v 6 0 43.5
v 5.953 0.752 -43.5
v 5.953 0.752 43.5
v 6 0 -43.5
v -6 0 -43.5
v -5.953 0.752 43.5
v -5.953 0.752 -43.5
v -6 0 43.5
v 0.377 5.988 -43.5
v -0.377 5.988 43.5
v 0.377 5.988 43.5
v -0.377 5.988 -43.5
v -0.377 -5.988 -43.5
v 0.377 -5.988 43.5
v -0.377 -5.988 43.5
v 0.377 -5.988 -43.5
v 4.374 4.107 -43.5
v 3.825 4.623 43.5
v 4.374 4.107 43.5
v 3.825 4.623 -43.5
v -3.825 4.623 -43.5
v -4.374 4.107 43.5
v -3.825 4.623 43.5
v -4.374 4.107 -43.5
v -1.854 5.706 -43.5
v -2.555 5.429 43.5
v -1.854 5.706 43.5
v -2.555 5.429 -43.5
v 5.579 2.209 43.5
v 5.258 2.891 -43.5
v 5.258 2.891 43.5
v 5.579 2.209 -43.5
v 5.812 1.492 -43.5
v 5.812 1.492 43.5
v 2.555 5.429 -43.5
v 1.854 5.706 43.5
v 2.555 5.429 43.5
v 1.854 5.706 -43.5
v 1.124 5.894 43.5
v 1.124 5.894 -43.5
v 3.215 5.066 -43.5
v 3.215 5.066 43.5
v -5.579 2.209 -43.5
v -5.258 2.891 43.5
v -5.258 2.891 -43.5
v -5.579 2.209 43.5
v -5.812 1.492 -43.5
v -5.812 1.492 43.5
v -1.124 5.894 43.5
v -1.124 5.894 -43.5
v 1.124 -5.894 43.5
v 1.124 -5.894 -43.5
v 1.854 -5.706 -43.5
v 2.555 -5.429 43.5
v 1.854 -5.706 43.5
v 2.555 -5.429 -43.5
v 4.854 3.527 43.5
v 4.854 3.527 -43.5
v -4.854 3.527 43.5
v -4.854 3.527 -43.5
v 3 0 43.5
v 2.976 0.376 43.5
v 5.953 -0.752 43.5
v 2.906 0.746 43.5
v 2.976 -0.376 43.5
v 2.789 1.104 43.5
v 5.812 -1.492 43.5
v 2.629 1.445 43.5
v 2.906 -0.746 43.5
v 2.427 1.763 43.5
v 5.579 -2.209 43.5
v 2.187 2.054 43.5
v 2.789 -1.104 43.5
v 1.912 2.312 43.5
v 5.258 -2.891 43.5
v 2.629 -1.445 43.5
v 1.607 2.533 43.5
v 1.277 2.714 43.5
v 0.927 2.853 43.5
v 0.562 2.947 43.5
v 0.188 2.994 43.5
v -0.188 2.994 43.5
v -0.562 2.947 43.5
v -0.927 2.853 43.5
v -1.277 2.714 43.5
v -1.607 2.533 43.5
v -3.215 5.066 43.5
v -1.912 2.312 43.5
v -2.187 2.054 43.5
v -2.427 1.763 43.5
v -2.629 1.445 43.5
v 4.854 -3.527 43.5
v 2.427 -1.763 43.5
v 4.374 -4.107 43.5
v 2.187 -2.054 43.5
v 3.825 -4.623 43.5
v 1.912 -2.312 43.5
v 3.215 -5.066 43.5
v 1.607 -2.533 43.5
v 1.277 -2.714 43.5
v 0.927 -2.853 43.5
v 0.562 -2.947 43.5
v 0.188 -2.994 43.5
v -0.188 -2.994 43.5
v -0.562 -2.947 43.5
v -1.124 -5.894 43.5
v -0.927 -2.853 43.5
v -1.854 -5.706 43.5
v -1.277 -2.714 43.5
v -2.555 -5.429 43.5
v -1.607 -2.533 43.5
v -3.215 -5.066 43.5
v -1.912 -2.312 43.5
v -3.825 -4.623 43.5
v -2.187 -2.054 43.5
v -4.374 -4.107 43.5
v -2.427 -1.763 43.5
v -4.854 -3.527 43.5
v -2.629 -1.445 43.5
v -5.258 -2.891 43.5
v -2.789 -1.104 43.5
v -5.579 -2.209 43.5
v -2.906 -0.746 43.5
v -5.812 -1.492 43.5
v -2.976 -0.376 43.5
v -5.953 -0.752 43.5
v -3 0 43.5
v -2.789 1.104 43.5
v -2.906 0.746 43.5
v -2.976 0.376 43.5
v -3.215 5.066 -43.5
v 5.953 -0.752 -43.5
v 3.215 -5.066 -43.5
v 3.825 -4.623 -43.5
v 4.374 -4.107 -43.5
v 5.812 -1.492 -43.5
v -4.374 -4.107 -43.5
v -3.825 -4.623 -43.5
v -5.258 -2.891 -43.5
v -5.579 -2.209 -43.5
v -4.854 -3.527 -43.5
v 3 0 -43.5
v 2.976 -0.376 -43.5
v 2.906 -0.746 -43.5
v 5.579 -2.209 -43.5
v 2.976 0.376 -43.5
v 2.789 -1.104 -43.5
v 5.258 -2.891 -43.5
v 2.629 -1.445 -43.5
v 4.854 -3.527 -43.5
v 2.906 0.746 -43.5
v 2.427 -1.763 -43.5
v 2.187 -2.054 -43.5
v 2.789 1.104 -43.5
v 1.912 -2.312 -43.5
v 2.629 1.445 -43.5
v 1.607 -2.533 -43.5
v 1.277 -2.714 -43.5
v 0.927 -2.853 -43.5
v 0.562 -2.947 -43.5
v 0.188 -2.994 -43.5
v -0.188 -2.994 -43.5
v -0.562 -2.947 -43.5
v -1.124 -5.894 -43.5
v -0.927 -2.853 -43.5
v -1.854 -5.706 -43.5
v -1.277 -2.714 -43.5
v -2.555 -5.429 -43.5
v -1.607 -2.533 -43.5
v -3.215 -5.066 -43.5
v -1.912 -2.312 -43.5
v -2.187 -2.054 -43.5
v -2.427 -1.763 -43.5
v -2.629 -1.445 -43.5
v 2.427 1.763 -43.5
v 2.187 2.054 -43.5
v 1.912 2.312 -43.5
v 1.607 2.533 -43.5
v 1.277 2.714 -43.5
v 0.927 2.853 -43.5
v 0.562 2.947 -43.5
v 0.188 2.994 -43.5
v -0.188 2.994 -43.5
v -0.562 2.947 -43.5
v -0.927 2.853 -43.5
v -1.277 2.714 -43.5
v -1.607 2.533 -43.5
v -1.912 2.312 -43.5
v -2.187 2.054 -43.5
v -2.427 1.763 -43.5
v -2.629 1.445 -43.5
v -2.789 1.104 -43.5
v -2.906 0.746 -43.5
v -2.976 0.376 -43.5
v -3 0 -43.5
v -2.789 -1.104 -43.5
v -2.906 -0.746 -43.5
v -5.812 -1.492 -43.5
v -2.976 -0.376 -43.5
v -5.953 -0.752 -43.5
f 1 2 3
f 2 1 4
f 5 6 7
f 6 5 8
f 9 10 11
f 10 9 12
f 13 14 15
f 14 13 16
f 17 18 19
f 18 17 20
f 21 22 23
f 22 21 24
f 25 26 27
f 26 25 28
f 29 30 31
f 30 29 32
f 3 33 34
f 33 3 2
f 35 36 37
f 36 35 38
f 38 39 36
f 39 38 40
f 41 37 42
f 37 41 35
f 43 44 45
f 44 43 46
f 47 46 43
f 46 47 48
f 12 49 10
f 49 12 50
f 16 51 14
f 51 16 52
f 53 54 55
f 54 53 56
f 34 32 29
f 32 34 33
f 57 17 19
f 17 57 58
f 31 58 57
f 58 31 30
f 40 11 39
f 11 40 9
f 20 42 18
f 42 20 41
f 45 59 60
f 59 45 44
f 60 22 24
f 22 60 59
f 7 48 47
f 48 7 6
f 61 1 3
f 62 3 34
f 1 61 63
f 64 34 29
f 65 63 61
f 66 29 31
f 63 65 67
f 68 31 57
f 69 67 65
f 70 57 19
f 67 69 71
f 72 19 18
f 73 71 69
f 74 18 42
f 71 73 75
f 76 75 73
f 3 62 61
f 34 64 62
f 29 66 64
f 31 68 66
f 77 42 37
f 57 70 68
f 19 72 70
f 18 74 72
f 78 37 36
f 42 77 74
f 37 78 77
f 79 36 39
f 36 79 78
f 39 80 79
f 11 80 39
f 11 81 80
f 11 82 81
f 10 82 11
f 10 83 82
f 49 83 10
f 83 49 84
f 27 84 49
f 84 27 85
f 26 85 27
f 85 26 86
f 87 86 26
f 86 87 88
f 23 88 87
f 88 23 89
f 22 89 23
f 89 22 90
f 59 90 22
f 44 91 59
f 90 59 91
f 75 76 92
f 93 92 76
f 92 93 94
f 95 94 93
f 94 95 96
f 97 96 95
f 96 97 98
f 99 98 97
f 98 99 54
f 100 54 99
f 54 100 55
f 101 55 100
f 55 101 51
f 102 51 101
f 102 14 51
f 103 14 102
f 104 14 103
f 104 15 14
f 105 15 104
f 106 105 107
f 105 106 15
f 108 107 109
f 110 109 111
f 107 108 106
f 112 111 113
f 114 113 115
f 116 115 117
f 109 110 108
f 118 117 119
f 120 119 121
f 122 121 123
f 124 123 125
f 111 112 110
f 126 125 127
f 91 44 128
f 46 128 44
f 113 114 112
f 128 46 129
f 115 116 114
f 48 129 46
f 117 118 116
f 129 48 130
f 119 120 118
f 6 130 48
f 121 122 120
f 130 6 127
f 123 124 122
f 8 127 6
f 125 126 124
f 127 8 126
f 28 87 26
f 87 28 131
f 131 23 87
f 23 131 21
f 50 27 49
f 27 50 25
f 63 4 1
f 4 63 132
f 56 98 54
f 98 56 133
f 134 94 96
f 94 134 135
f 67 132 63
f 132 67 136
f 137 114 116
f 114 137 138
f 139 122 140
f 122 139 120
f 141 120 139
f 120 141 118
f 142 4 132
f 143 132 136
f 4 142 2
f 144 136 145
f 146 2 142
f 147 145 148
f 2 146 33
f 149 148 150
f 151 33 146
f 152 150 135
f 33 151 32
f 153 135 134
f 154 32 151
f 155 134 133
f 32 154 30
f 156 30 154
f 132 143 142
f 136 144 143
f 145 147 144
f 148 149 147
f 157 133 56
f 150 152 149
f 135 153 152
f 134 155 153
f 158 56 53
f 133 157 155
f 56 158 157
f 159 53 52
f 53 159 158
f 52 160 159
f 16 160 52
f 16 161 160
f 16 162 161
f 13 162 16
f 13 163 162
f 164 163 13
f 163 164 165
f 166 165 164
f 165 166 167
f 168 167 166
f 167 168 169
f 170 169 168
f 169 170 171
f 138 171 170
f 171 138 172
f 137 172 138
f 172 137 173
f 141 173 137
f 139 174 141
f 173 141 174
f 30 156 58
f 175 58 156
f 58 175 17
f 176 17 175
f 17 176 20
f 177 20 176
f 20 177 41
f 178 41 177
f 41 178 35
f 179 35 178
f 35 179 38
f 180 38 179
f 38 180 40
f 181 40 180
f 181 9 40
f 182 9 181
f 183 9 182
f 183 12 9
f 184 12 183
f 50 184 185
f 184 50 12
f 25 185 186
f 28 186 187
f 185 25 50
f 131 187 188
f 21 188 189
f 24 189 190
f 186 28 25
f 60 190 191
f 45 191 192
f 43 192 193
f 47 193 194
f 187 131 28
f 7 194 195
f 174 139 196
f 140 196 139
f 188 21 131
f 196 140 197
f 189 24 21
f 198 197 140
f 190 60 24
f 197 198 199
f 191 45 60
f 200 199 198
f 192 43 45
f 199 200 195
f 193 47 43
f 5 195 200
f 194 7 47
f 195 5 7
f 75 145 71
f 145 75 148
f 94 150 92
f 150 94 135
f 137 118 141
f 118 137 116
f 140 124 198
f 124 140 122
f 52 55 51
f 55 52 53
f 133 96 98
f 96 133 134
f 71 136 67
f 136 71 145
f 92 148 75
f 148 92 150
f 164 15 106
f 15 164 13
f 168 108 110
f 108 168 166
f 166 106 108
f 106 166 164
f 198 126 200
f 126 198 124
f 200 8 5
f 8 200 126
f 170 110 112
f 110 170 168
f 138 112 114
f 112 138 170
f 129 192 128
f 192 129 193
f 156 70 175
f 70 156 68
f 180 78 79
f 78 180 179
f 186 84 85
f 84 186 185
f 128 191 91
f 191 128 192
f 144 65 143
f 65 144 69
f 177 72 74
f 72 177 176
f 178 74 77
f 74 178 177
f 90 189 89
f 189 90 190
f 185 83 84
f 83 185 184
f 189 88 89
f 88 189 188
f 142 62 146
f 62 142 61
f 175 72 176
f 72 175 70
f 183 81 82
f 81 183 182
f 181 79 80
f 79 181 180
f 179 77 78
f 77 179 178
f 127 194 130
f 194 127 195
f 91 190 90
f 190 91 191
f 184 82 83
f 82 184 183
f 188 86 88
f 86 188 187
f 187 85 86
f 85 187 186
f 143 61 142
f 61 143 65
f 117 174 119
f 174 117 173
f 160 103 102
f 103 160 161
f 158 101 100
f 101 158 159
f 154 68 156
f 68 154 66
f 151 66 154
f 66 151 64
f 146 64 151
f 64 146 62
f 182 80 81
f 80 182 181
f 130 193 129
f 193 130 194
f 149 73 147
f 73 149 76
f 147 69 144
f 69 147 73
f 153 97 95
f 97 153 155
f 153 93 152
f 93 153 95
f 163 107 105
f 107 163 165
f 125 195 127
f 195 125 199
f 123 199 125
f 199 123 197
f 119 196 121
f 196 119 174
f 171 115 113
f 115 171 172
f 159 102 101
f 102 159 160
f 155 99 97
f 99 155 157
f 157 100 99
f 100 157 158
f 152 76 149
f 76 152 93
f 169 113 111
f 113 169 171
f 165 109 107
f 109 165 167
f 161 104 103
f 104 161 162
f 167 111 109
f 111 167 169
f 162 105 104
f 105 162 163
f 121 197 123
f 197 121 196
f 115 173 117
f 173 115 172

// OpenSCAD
$fn = 50;


difference() {
	union() {
		translate(v = [0, 0, -43.5000000000]) {
			cylinder(h = 87, r = 6.0000000000);
		}
	}
	union() {
		translate(v = [0, 0, -100.0000000000]) {
			cylinder(h = 200, r = 3);
		}
	}
}
